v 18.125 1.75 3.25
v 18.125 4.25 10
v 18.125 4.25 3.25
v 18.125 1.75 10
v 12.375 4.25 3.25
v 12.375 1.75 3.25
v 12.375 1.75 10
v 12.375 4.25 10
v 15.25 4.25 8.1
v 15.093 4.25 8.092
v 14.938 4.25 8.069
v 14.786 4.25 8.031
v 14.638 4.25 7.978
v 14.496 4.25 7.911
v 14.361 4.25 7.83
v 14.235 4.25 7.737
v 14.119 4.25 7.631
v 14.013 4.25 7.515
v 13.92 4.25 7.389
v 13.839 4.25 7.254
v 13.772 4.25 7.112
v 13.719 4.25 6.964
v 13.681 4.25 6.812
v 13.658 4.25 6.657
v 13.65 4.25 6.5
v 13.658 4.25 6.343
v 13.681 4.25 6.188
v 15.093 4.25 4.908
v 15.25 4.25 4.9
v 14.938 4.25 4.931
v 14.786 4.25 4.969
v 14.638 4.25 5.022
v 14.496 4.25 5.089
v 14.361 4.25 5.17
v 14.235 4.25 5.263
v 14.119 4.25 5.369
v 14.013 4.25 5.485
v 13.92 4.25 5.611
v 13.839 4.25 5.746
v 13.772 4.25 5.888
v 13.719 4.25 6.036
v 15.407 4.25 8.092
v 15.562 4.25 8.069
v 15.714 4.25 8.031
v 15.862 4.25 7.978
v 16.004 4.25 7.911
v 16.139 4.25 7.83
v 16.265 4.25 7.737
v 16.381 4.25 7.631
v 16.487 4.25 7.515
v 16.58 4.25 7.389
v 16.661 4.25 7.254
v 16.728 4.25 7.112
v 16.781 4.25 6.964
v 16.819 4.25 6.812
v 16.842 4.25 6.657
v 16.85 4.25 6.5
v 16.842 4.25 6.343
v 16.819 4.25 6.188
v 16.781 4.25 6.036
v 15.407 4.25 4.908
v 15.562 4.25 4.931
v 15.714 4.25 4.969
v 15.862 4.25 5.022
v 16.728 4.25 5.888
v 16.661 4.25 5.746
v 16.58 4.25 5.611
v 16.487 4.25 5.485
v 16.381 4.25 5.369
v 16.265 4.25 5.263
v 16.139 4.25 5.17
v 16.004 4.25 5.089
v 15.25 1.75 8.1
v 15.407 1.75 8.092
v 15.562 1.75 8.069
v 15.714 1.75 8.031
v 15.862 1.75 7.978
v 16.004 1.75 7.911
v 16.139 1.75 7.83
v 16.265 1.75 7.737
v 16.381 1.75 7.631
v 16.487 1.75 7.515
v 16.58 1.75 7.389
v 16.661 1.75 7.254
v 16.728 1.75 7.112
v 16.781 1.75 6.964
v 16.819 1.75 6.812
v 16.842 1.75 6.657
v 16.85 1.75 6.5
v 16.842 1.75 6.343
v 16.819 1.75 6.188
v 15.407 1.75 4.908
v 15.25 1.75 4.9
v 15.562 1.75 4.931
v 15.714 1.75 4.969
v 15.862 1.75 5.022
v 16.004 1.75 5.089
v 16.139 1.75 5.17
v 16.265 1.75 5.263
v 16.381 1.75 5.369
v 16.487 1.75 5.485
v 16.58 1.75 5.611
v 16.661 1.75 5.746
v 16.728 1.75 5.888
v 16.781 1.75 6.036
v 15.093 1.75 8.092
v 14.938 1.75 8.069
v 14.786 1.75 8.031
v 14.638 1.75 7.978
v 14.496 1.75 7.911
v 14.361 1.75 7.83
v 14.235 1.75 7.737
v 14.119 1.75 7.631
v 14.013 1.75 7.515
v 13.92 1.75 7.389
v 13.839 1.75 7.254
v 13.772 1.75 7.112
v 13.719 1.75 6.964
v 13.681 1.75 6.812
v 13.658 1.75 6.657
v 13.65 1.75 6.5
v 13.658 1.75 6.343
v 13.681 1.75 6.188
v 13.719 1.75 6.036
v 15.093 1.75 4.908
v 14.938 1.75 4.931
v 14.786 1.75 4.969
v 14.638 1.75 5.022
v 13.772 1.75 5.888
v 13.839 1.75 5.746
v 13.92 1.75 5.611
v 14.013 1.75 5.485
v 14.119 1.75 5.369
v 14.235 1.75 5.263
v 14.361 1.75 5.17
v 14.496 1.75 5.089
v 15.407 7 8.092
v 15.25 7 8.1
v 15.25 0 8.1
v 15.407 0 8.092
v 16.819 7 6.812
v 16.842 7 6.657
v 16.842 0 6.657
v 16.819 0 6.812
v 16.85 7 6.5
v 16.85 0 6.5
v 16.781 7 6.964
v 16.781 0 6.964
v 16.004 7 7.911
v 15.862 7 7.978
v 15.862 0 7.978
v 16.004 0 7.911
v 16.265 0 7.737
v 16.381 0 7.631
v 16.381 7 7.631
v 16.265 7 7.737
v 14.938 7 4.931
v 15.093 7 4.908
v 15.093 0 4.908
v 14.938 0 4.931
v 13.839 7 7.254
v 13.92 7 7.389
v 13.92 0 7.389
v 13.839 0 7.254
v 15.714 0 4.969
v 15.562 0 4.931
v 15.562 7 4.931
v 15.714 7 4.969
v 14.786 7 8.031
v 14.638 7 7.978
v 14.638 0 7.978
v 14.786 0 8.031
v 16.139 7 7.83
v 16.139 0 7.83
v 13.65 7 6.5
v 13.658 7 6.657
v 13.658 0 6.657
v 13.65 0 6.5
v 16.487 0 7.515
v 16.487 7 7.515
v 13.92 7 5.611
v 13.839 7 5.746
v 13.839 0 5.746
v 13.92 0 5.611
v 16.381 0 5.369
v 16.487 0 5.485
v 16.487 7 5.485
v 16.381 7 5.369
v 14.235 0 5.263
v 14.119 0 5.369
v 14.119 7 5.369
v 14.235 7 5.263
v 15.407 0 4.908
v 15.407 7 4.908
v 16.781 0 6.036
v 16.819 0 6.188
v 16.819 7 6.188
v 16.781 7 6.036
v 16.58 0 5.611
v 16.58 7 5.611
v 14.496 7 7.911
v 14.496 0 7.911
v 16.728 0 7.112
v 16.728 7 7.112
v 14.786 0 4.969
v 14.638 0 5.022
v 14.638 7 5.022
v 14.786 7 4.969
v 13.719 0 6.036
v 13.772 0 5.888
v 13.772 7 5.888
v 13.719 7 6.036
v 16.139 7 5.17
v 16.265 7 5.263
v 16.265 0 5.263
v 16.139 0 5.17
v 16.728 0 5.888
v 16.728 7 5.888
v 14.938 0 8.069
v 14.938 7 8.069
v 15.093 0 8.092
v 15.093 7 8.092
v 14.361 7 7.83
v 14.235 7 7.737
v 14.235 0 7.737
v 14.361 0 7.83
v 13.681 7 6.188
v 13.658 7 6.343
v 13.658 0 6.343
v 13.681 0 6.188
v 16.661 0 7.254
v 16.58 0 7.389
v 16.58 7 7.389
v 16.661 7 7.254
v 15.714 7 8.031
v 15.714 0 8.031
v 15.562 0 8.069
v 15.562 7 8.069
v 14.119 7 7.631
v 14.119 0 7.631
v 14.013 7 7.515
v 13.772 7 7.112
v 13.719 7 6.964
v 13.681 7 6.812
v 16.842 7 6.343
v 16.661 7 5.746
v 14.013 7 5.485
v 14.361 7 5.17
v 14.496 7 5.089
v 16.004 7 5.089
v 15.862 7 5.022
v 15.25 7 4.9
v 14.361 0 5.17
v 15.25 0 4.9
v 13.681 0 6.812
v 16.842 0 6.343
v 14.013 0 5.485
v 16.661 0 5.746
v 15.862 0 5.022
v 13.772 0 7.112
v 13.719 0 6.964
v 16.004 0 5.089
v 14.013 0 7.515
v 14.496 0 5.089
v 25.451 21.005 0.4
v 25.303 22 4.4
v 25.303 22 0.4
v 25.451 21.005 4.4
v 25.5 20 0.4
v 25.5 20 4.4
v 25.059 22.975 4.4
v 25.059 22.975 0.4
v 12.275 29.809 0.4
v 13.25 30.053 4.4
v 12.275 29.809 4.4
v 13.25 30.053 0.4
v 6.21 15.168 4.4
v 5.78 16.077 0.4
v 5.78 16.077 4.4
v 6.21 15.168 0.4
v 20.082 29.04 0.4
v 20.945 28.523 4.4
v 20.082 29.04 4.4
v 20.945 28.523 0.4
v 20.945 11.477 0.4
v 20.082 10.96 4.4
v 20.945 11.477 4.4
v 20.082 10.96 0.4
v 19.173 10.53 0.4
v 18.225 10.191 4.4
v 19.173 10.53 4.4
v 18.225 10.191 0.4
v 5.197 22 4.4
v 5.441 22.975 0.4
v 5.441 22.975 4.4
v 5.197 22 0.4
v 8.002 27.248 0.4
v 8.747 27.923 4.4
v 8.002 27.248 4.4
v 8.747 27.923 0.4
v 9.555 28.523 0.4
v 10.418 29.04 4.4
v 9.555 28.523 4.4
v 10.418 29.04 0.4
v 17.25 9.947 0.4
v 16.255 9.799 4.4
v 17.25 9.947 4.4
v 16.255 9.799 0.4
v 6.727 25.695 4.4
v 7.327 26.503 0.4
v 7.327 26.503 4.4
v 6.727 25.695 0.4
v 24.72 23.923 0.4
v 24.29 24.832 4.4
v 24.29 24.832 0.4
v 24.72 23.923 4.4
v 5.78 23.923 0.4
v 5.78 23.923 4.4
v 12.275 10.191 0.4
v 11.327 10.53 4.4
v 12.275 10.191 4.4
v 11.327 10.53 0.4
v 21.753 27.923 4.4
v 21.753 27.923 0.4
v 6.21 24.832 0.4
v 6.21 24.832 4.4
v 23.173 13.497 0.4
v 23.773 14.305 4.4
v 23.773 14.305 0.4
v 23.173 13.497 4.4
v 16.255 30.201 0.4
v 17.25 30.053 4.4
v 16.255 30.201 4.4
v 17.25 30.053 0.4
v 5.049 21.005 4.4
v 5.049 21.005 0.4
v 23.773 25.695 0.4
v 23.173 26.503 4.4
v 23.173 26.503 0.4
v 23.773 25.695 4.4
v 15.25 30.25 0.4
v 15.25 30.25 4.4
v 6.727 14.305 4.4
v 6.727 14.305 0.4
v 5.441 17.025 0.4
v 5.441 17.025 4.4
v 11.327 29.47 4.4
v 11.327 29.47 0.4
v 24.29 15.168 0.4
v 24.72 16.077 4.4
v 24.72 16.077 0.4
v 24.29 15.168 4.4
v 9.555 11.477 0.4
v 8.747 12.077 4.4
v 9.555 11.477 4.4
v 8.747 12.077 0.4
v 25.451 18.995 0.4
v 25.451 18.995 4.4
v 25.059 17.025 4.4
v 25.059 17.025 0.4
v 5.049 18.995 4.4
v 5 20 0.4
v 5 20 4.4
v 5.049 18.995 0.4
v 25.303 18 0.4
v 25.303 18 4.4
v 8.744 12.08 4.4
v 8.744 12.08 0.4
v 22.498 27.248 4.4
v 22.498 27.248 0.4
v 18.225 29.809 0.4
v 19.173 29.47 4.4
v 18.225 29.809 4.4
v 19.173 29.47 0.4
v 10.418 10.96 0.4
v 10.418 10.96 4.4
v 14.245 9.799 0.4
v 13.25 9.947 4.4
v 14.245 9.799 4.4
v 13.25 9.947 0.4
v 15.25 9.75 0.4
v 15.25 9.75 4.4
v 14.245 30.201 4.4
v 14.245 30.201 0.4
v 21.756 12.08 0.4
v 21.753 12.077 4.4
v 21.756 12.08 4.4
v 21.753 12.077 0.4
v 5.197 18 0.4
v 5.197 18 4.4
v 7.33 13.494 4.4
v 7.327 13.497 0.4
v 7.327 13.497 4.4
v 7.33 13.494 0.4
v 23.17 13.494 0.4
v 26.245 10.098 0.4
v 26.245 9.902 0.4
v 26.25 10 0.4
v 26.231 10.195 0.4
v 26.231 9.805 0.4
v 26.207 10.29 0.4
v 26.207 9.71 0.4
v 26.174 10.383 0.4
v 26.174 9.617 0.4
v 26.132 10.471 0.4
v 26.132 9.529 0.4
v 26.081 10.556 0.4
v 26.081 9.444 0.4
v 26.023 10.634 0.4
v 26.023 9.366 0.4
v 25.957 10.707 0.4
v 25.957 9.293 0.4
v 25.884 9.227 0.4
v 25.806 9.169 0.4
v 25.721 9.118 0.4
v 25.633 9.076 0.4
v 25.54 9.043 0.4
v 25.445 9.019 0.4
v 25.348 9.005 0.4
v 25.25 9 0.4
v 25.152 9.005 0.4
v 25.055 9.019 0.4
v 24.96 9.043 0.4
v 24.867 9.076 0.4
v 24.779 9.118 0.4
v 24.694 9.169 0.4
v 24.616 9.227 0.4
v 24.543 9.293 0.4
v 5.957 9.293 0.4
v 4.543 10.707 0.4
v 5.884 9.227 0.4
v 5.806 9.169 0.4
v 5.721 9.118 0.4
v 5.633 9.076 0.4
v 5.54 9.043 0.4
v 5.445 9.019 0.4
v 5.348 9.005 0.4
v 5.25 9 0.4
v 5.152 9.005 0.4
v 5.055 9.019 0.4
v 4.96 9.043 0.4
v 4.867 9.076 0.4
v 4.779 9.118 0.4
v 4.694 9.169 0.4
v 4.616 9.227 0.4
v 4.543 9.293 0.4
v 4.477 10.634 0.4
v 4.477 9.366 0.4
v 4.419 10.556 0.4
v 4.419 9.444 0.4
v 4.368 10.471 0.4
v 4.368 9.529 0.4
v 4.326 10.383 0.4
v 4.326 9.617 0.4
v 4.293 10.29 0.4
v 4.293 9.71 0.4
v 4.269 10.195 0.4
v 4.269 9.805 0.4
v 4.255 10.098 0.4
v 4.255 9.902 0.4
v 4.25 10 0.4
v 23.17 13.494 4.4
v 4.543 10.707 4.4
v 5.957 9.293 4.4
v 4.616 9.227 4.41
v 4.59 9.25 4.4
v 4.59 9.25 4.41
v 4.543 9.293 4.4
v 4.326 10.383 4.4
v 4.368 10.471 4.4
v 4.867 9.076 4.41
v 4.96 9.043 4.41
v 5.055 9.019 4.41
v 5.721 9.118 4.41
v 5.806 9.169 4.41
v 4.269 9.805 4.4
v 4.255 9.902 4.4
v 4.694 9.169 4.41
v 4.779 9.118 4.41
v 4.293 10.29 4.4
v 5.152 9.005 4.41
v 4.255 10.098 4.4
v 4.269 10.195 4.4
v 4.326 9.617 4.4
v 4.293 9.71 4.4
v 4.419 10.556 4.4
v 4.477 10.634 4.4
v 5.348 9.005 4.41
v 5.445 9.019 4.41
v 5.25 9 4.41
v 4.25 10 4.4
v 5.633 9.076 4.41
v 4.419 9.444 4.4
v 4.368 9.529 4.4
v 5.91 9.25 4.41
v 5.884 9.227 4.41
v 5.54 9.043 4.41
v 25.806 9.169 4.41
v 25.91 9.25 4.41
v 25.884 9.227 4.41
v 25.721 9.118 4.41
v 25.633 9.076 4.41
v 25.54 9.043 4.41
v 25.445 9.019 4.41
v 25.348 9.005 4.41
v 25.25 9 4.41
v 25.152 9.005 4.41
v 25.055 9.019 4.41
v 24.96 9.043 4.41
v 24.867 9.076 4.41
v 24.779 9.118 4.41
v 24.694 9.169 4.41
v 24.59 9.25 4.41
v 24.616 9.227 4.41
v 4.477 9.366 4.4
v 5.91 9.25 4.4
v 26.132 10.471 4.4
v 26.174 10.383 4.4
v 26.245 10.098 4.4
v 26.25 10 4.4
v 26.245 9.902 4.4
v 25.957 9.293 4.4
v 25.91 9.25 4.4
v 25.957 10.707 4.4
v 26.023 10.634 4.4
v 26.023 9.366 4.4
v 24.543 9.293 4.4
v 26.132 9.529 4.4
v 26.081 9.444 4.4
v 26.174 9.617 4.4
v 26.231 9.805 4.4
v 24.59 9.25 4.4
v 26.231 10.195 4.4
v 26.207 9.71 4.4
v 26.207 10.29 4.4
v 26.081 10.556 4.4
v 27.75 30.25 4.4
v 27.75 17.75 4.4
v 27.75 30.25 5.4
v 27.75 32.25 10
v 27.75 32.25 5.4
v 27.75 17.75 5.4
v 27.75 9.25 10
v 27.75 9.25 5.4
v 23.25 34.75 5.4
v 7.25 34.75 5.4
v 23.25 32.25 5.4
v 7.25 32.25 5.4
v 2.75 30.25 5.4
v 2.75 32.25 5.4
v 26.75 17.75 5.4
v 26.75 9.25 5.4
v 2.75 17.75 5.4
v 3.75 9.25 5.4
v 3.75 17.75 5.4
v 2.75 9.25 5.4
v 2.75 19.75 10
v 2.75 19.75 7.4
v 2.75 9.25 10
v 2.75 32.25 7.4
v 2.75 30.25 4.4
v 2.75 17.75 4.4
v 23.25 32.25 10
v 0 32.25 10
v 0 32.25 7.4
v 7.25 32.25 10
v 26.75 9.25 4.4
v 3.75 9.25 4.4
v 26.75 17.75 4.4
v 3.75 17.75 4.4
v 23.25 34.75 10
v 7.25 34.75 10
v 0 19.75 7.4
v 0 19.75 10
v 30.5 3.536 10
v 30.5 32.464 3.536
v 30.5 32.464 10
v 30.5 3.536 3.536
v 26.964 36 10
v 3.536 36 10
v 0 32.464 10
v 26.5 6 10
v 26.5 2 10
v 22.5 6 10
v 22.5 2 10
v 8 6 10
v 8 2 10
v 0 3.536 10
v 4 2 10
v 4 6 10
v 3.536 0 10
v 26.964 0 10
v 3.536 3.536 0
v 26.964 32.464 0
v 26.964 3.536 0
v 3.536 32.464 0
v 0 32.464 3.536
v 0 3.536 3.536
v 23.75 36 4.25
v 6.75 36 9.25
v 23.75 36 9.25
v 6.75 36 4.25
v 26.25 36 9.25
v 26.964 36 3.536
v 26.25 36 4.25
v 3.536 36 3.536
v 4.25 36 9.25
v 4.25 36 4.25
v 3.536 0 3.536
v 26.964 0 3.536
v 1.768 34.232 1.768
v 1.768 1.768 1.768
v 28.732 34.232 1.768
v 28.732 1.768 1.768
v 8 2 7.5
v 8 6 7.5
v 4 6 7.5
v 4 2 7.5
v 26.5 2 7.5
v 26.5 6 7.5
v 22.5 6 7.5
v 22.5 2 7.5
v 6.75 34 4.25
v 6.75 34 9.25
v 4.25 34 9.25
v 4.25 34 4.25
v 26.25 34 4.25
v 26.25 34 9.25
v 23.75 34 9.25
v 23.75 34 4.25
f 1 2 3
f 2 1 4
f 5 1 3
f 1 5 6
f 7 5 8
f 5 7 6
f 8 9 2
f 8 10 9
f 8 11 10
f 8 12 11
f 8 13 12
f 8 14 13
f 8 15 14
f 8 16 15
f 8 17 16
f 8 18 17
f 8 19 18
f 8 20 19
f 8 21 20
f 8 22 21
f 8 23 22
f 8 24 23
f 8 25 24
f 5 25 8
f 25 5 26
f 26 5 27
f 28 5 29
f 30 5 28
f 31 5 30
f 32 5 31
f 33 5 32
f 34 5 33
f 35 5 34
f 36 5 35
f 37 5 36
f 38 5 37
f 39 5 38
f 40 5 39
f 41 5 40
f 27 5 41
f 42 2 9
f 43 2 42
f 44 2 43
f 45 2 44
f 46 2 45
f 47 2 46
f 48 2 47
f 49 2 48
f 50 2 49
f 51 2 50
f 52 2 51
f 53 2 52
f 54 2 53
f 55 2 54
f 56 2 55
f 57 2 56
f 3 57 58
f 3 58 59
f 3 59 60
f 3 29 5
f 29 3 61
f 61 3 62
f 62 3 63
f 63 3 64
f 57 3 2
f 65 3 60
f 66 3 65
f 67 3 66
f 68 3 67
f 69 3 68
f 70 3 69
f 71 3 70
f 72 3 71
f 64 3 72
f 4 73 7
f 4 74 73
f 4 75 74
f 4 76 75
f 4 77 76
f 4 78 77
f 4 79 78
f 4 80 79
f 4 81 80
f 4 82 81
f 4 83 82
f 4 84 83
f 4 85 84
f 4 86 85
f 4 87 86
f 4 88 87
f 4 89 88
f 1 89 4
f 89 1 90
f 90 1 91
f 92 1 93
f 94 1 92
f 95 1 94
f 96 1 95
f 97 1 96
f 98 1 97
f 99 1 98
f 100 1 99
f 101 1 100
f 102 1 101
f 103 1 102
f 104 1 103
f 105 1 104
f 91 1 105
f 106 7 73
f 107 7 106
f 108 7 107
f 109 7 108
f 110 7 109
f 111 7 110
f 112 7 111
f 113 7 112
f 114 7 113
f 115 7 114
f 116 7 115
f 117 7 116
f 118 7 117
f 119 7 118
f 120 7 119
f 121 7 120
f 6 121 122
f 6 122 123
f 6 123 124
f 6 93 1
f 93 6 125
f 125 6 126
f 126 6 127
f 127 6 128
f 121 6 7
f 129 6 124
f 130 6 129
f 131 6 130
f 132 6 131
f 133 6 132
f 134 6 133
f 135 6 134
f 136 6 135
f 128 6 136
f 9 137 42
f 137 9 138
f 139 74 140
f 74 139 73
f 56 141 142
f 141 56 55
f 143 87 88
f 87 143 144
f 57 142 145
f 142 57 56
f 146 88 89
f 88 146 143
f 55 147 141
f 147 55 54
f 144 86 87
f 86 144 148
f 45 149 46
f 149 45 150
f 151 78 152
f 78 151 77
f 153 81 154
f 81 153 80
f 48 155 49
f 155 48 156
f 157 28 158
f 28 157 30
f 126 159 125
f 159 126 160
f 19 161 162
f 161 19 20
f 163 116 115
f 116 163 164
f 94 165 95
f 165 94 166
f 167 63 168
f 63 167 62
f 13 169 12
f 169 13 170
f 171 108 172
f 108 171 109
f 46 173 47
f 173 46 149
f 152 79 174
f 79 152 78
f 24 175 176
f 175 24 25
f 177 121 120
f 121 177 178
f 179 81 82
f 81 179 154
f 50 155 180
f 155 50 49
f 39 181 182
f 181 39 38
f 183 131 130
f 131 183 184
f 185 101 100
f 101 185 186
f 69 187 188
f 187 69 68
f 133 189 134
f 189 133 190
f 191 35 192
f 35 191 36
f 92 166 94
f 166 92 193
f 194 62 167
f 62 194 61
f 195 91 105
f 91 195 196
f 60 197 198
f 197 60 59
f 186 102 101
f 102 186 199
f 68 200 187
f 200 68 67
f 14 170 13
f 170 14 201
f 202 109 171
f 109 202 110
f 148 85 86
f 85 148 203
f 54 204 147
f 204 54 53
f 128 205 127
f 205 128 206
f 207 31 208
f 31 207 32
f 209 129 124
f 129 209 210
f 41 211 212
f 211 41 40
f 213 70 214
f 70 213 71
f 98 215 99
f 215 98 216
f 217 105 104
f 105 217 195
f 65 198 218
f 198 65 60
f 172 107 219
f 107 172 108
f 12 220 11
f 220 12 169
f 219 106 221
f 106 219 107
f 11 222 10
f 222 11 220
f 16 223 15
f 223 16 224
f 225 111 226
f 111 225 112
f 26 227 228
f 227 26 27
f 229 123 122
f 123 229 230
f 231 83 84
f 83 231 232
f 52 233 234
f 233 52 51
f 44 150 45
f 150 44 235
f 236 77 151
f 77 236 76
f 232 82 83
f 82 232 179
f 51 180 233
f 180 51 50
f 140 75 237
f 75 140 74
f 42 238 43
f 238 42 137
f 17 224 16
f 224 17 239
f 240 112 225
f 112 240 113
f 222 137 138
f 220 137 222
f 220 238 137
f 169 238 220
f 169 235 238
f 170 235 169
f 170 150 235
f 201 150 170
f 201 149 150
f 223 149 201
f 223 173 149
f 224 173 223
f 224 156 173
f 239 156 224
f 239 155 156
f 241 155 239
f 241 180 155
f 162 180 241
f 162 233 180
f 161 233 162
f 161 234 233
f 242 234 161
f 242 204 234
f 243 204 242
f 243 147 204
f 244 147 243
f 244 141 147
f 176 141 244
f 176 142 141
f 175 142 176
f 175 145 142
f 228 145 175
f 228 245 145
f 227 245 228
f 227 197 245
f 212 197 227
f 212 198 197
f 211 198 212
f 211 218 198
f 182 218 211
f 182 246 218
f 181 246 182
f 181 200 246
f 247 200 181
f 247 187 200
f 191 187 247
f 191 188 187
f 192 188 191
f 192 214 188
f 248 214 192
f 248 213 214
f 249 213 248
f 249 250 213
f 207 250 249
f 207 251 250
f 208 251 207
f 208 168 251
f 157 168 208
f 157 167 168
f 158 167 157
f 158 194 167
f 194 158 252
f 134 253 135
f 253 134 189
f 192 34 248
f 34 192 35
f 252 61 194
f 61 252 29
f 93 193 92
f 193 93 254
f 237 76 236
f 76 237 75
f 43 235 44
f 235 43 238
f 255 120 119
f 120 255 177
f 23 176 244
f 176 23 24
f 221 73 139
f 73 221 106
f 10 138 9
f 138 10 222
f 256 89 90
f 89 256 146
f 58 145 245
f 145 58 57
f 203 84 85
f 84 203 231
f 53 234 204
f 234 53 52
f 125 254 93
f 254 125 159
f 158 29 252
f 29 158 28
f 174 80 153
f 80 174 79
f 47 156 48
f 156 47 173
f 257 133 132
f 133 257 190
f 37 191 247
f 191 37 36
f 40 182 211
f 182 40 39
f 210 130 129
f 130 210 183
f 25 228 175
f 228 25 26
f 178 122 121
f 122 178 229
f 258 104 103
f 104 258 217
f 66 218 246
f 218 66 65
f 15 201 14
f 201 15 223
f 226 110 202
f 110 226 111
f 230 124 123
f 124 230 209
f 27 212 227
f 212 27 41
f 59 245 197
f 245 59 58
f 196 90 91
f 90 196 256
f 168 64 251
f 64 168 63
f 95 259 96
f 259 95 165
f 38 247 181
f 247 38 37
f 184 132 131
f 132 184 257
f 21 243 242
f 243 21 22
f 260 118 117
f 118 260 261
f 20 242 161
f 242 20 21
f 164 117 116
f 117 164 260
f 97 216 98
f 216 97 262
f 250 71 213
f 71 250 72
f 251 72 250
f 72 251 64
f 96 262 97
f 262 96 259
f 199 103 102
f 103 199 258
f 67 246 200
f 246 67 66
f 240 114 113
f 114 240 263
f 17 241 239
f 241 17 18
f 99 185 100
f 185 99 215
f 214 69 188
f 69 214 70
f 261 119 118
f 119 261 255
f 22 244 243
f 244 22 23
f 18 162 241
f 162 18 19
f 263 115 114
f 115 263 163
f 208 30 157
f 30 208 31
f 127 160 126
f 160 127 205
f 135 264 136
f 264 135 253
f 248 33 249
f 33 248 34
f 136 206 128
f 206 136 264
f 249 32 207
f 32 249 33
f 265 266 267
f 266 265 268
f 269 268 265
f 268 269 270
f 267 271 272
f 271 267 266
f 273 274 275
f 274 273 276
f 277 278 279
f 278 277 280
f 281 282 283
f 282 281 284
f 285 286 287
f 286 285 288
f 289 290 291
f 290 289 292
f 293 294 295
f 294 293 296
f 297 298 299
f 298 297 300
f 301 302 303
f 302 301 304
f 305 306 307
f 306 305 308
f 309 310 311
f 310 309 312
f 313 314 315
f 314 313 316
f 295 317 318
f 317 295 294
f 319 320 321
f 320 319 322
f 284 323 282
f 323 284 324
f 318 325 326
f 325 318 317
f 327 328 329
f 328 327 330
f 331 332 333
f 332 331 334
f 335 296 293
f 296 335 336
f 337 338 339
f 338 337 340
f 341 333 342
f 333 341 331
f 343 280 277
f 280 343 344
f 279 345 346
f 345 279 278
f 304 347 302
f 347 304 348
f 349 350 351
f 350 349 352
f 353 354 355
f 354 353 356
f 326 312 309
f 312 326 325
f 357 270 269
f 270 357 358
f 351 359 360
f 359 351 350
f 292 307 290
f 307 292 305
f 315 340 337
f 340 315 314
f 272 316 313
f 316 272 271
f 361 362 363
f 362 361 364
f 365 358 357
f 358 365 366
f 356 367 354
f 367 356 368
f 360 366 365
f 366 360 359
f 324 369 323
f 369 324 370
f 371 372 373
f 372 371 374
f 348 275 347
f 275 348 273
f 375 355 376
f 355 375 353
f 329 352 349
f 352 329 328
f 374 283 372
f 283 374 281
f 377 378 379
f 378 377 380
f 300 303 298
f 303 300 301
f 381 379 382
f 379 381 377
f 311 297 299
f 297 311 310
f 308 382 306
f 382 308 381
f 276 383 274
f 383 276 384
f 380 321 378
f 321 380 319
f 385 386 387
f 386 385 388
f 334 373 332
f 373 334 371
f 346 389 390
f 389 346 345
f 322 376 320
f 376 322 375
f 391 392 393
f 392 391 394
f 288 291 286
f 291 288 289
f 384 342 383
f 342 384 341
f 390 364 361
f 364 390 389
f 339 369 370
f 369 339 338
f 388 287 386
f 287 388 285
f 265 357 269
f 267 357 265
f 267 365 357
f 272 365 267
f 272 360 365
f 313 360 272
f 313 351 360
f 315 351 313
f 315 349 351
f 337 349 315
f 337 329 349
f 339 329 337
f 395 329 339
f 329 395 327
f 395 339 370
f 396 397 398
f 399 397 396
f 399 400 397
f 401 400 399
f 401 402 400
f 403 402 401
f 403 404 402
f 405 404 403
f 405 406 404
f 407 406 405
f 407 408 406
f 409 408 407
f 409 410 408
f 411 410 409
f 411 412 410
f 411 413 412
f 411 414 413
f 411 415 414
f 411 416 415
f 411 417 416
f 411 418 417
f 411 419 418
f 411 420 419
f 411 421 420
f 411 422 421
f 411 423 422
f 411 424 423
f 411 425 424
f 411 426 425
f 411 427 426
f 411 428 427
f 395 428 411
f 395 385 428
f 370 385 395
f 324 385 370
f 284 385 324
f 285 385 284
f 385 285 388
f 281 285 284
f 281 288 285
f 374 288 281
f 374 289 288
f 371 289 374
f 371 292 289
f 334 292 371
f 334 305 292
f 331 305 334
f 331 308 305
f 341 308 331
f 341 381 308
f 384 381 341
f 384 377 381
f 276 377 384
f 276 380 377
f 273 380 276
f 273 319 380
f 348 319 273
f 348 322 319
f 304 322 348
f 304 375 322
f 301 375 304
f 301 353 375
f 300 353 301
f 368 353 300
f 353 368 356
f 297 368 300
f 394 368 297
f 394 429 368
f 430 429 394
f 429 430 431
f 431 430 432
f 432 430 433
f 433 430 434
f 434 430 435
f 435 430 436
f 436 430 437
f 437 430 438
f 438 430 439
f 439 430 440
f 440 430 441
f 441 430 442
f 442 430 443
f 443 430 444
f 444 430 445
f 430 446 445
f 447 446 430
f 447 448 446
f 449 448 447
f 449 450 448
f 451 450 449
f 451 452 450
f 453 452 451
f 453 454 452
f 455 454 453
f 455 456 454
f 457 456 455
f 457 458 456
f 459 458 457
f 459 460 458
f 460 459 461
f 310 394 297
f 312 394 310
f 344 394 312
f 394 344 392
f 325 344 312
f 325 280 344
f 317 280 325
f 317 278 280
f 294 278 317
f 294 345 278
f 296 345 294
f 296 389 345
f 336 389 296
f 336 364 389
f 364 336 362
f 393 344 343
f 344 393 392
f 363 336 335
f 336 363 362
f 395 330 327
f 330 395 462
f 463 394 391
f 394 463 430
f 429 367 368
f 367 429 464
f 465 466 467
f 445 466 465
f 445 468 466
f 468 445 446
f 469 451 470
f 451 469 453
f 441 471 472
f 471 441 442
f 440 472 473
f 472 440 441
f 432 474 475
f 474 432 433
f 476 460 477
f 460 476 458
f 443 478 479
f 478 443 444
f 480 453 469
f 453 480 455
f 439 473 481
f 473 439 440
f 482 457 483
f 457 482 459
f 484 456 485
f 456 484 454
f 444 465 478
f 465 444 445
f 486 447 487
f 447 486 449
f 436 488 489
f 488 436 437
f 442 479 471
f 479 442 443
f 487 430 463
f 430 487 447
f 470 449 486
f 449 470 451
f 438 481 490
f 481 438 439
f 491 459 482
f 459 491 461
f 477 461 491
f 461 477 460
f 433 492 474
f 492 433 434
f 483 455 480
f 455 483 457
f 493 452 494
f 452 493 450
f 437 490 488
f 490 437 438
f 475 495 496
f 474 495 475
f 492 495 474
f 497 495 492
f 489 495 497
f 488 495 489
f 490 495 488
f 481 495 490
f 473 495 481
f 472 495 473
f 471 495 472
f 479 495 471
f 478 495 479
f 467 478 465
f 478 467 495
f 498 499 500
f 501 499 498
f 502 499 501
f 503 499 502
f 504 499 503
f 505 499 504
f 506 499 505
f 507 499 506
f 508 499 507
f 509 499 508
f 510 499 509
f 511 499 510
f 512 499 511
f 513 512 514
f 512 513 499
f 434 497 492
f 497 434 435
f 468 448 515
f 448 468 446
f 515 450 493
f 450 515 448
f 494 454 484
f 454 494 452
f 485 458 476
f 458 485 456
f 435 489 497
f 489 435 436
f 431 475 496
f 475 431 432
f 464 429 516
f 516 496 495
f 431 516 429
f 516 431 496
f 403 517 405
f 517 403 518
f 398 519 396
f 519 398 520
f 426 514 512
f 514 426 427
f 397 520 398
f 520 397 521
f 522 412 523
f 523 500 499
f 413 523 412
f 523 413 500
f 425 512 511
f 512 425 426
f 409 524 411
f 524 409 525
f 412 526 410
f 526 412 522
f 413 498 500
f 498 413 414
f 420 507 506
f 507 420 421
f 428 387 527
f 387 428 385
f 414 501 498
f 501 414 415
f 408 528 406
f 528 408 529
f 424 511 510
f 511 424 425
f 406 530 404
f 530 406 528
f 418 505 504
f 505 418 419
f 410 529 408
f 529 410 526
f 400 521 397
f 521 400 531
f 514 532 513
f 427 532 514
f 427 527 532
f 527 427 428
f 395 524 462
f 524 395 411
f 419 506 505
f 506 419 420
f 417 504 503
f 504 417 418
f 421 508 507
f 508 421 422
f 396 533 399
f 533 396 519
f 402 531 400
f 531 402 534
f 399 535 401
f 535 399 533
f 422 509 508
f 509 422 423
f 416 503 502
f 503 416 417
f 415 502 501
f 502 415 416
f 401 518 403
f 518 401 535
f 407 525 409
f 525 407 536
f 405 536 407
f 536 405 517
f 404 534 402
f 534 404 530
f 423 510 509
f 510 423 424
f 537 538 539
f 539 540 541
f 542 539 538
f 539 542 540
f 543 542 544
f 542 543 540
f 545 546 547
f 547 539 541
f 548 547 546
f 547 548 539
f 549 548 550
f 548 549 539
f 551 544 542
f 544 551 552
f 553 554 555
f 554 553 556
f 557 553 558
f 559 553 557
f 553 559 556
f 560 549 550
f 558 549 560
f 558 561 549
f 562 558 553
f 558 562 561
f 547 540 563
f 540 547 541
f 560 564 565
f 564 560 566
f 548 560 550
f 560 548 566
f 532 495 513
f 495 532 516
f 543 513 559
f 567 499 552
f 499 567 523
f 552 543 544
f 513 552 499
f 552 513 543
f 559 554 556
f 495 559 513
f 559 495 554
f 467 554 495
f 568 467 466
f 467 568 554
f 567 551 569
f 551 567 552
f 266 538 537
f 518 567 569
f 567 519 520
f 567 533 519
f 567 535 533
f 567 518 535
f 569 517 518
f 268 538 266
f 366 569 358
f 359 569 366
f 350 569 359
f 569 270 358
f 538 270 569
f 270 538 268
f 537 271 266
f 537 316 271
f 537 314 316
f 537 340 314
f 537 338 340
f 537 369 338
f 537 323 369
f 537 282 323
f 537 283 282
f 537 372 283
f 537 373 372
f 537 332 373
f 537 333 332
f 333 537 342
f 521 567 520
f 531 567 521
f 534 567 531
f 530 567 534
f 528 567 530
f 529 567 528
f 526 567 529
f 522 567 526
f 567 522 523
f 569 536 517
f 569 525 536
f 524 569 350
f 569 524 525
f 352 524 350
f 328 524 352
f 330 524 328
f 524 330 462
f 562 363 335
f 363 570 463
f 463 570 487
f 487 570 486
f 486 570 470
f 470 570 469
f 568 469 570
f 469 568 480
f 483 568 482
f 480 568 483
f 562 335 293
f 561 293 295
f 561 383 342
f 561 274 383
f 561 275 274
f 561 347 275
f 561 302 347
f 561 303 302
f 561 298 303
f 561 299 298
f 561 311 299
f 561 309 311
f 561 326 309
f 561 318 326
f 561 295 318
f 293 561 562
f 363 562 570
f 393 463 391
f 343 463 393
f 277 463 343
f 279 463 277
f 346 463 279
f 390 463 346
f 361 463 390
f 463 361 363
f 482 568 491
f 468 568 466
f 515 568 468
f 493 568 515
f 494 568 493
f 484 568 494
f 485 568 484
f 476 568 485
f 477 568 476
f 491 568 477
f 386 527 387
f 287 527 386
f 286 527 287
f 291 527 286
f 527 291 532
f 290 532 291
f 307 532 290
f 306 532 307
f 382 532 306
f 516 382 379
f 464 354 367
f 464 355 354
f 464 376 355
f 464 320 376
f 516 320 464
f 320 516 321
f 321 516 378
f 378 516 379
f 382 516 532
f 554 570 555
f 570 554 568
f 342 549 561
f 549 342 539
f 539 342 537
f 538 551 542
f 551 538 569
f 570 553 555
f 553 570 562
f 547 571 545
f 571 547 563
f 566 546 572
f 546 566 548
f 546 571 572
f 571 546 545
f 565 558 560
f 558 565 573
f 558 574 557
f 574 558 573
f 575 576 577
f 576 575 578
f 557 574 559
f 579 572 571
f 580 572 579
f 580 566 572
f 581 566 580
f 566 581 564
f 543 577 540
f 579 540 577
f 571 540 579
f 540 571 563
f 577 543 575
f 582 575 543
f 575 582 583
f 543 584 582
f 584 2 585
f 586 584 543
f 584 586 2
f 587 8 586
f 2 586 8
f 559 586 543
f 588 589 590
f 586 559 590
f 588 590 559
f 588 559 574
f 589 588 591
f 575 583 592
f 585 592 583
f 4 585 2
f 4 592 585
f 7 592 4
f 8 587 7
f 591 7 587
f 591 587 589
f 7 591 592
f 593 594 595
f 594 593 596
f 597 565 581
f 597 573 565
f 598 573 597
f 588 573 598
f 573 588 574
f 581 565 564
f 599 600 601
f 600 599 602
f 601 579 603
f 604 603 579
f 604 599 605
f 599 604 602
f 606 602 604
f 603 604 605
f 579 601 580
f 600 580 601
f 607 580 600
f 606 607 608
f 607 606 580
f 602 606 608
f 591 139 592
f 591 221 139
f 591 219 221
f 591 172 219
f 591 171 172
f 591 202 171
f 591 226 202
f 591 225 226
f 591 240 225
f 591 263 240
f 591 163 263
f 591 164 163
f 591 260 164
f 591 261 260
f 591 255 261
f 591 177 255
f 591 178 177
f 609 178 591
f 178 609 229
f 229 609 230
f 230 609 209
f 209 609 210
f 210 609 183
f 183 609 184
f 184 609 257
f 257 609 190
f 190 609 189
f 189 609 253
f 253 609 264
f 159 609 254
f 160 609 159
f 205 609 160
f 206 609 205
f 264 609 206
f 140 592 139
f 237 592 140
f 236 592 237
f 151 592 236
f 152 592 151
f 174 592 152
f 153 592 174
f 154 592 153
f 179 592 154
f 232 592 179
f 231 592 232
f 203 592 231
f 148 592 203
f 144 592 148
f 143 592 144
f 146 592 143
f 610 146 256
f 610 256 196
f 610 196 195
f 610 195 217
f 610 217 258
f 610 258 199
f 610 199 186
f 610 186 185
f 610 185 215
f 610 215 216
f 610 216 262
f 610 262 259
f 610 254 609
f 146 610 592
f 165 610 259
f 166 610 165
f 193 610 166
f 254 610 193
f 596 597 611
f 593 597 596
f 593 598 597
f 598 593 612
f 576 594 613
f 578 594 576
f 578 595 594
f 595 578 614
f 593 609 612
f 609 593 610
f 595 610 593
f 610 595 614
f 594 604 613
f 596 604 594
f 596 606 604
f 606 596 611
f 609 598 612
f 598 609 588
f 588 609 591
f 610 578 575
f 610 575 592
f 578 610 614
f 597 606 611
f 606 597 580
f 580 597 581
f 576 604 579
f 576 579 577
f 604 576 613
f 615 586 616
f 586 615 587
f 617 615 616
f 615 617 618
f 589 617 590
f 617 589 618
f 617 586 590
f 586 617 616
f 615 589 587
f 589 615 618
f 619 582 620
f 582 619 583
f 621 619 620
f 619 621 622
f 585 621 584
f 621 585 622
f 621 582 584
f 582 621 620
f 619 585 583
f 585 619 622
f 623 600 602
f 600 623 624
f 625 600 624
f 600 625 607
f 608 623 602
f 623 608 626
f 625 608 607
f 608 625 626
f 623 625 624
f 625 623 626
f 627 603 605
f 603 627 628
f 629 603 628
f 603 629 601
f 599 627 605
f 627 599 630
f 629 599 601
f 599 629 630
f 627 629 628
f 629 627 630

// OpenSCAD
// file: common.scad
$fn = 64;

body_w = 30.5;
body_h = 36;
body_d = 10;

emboss = 5;

tolerances = .1;
dtolerances = tolerances * 2;

lcd_top_offset = 2.5;

lcd_w = 24.8;
lcd_h = 16.7;
lcd_d = 1.5;

lcd_border = .6;
lcd_chin = 3;

strappole_w = 21;
strappole_d = 1.5;

top_d = lcd_d + 1;

module nuthole(w) {
	translate([-5.75/2, -2.5/2, -6.5/2]) cube([5.75, 2.5, 999]);
	
	rotate([90, 0, 0]) cylinder(h = w, d = 3.2, center = true);	
}
// main file
include <common.scad>

difference() {
	cube([body_w, body_h, body_d]);

	// Embossed edges (bottom)
	
	rotate([90, 45, 0]) cube([emboss, emboss, 100], center = true);
	translate([body_w, 0]) rotate([90, 45, 0]) cube([emboss, emboss, 100], center = true);
	
	rotate([90, 45, 90]) cube([emboss, emboss, 100], center = true);
	translate([0, body_h]) rotate([90, 45, 90]) cube([emboss, emboss, 100], center = true);
	
	// Embossed edges (walls)
	
	rotate([0, 0, 45]) cube([emboss, emboss, 100], center = true);
	translate([body_w, 0]) rotate([0, 0, 45]) cube([emboss, emboss, 100], center = true);
	translate([0, body_h]) rotate([0, 0, 45]) cube([emboss, emboss, 100], center = true);
	translate([body_w, body_h]) rotate([0, 0, 45]) cube([emboss, emboss, 100], center = true);
	
	// Nut & screw hole
	
	translate([body_w / 2, 3, 6.5]) nuthole(8);
	
	// Top cover mounting holes
	
	translate([6, 4, body_d]) cube([4, 4, 5], center = true); 
	
	translate([body_w - 6, 4, body_d]) cube([4, 4, 5], center = true); 
	
	translate([5.5, body_h, 6.75]) cube([2.5, 4, 5], center = true); 
	
	translate([body_w - 5.5, body_h, 6.75]) cube([2.5, 4, 5], center = true); 
	
	// From now on, move everything slightly backwards
	
	translate([0, 2, 0]) {
		// Battery cutout

		translate([body_w / 2, body_h / 2, .4]) cylinder(d = 20.5, h = 8);	
				
		// Left battery cable cutout
		
		hull() {
			translate([body_w / 2, body_h / 2, .4]) cylinder(d = 2, h = 4.01);
			translate([body_w / 2 - 10, body_h / 2 - 10, .4]) cylinder(d = 2, h = 4.01);
		}
		
		// Right battery cable cutout
		
		hull() {
			translate([body_w / 2, body_h / 2, .4]) cylinder(d = 2, h = 4.01);
			translate([body_w / 2 + 10, body_h / 2 - 10, .4]) cylinder(d = 2, h = 4.01);
		}
		
		// PCB bottom cutout
		
		translate([(body_w - 25) / 2, (body_h - 24.5) / 2 + 1.5, .4 + 4 + 1]) cube([25, 23, 8]);
		
		// Embossed PCB buttom cutout (for bottom components/wires)
		
		translate([(body_w - 25) / 2 + 1, (body_h - 24.5) / 2 + 1.5, .4 + 4]) cube([23, 21, 8]);
		
		translate([(body_w + 25) / 2 - 1.01, (body_h + 24.5) / 2 - 14.5, .4 + 4]) cube([1.01, 12.5, 8]);

		translate([(body_w - 25) / 2, (body_h + 24.5) / 2 - 14.5, .4 + 4]) cube([1.01, 12.5, 8]);

		// Ribbon cable cutout
		
		translate([(body_w - 16) / 2, (body_h + 24.5) / 2 - .01, .4 + 4 + 1]) cube([16, 2.51, 8]);
		
		// Righthand wire cutout
		
		//translate([(body_w + 26) / 2 - .01, (body_h + 24.5) / 2 - 12.5, .4 + 4 + 1]) cube([1, 12.5, 8]);	
		
		// Programming header cutout
		
		translate([-0.1, (body_h + 24.5) / 2 - 12.5, .4 + 4 + 3]) cube([5, 12.5, 8]);
	}
}
